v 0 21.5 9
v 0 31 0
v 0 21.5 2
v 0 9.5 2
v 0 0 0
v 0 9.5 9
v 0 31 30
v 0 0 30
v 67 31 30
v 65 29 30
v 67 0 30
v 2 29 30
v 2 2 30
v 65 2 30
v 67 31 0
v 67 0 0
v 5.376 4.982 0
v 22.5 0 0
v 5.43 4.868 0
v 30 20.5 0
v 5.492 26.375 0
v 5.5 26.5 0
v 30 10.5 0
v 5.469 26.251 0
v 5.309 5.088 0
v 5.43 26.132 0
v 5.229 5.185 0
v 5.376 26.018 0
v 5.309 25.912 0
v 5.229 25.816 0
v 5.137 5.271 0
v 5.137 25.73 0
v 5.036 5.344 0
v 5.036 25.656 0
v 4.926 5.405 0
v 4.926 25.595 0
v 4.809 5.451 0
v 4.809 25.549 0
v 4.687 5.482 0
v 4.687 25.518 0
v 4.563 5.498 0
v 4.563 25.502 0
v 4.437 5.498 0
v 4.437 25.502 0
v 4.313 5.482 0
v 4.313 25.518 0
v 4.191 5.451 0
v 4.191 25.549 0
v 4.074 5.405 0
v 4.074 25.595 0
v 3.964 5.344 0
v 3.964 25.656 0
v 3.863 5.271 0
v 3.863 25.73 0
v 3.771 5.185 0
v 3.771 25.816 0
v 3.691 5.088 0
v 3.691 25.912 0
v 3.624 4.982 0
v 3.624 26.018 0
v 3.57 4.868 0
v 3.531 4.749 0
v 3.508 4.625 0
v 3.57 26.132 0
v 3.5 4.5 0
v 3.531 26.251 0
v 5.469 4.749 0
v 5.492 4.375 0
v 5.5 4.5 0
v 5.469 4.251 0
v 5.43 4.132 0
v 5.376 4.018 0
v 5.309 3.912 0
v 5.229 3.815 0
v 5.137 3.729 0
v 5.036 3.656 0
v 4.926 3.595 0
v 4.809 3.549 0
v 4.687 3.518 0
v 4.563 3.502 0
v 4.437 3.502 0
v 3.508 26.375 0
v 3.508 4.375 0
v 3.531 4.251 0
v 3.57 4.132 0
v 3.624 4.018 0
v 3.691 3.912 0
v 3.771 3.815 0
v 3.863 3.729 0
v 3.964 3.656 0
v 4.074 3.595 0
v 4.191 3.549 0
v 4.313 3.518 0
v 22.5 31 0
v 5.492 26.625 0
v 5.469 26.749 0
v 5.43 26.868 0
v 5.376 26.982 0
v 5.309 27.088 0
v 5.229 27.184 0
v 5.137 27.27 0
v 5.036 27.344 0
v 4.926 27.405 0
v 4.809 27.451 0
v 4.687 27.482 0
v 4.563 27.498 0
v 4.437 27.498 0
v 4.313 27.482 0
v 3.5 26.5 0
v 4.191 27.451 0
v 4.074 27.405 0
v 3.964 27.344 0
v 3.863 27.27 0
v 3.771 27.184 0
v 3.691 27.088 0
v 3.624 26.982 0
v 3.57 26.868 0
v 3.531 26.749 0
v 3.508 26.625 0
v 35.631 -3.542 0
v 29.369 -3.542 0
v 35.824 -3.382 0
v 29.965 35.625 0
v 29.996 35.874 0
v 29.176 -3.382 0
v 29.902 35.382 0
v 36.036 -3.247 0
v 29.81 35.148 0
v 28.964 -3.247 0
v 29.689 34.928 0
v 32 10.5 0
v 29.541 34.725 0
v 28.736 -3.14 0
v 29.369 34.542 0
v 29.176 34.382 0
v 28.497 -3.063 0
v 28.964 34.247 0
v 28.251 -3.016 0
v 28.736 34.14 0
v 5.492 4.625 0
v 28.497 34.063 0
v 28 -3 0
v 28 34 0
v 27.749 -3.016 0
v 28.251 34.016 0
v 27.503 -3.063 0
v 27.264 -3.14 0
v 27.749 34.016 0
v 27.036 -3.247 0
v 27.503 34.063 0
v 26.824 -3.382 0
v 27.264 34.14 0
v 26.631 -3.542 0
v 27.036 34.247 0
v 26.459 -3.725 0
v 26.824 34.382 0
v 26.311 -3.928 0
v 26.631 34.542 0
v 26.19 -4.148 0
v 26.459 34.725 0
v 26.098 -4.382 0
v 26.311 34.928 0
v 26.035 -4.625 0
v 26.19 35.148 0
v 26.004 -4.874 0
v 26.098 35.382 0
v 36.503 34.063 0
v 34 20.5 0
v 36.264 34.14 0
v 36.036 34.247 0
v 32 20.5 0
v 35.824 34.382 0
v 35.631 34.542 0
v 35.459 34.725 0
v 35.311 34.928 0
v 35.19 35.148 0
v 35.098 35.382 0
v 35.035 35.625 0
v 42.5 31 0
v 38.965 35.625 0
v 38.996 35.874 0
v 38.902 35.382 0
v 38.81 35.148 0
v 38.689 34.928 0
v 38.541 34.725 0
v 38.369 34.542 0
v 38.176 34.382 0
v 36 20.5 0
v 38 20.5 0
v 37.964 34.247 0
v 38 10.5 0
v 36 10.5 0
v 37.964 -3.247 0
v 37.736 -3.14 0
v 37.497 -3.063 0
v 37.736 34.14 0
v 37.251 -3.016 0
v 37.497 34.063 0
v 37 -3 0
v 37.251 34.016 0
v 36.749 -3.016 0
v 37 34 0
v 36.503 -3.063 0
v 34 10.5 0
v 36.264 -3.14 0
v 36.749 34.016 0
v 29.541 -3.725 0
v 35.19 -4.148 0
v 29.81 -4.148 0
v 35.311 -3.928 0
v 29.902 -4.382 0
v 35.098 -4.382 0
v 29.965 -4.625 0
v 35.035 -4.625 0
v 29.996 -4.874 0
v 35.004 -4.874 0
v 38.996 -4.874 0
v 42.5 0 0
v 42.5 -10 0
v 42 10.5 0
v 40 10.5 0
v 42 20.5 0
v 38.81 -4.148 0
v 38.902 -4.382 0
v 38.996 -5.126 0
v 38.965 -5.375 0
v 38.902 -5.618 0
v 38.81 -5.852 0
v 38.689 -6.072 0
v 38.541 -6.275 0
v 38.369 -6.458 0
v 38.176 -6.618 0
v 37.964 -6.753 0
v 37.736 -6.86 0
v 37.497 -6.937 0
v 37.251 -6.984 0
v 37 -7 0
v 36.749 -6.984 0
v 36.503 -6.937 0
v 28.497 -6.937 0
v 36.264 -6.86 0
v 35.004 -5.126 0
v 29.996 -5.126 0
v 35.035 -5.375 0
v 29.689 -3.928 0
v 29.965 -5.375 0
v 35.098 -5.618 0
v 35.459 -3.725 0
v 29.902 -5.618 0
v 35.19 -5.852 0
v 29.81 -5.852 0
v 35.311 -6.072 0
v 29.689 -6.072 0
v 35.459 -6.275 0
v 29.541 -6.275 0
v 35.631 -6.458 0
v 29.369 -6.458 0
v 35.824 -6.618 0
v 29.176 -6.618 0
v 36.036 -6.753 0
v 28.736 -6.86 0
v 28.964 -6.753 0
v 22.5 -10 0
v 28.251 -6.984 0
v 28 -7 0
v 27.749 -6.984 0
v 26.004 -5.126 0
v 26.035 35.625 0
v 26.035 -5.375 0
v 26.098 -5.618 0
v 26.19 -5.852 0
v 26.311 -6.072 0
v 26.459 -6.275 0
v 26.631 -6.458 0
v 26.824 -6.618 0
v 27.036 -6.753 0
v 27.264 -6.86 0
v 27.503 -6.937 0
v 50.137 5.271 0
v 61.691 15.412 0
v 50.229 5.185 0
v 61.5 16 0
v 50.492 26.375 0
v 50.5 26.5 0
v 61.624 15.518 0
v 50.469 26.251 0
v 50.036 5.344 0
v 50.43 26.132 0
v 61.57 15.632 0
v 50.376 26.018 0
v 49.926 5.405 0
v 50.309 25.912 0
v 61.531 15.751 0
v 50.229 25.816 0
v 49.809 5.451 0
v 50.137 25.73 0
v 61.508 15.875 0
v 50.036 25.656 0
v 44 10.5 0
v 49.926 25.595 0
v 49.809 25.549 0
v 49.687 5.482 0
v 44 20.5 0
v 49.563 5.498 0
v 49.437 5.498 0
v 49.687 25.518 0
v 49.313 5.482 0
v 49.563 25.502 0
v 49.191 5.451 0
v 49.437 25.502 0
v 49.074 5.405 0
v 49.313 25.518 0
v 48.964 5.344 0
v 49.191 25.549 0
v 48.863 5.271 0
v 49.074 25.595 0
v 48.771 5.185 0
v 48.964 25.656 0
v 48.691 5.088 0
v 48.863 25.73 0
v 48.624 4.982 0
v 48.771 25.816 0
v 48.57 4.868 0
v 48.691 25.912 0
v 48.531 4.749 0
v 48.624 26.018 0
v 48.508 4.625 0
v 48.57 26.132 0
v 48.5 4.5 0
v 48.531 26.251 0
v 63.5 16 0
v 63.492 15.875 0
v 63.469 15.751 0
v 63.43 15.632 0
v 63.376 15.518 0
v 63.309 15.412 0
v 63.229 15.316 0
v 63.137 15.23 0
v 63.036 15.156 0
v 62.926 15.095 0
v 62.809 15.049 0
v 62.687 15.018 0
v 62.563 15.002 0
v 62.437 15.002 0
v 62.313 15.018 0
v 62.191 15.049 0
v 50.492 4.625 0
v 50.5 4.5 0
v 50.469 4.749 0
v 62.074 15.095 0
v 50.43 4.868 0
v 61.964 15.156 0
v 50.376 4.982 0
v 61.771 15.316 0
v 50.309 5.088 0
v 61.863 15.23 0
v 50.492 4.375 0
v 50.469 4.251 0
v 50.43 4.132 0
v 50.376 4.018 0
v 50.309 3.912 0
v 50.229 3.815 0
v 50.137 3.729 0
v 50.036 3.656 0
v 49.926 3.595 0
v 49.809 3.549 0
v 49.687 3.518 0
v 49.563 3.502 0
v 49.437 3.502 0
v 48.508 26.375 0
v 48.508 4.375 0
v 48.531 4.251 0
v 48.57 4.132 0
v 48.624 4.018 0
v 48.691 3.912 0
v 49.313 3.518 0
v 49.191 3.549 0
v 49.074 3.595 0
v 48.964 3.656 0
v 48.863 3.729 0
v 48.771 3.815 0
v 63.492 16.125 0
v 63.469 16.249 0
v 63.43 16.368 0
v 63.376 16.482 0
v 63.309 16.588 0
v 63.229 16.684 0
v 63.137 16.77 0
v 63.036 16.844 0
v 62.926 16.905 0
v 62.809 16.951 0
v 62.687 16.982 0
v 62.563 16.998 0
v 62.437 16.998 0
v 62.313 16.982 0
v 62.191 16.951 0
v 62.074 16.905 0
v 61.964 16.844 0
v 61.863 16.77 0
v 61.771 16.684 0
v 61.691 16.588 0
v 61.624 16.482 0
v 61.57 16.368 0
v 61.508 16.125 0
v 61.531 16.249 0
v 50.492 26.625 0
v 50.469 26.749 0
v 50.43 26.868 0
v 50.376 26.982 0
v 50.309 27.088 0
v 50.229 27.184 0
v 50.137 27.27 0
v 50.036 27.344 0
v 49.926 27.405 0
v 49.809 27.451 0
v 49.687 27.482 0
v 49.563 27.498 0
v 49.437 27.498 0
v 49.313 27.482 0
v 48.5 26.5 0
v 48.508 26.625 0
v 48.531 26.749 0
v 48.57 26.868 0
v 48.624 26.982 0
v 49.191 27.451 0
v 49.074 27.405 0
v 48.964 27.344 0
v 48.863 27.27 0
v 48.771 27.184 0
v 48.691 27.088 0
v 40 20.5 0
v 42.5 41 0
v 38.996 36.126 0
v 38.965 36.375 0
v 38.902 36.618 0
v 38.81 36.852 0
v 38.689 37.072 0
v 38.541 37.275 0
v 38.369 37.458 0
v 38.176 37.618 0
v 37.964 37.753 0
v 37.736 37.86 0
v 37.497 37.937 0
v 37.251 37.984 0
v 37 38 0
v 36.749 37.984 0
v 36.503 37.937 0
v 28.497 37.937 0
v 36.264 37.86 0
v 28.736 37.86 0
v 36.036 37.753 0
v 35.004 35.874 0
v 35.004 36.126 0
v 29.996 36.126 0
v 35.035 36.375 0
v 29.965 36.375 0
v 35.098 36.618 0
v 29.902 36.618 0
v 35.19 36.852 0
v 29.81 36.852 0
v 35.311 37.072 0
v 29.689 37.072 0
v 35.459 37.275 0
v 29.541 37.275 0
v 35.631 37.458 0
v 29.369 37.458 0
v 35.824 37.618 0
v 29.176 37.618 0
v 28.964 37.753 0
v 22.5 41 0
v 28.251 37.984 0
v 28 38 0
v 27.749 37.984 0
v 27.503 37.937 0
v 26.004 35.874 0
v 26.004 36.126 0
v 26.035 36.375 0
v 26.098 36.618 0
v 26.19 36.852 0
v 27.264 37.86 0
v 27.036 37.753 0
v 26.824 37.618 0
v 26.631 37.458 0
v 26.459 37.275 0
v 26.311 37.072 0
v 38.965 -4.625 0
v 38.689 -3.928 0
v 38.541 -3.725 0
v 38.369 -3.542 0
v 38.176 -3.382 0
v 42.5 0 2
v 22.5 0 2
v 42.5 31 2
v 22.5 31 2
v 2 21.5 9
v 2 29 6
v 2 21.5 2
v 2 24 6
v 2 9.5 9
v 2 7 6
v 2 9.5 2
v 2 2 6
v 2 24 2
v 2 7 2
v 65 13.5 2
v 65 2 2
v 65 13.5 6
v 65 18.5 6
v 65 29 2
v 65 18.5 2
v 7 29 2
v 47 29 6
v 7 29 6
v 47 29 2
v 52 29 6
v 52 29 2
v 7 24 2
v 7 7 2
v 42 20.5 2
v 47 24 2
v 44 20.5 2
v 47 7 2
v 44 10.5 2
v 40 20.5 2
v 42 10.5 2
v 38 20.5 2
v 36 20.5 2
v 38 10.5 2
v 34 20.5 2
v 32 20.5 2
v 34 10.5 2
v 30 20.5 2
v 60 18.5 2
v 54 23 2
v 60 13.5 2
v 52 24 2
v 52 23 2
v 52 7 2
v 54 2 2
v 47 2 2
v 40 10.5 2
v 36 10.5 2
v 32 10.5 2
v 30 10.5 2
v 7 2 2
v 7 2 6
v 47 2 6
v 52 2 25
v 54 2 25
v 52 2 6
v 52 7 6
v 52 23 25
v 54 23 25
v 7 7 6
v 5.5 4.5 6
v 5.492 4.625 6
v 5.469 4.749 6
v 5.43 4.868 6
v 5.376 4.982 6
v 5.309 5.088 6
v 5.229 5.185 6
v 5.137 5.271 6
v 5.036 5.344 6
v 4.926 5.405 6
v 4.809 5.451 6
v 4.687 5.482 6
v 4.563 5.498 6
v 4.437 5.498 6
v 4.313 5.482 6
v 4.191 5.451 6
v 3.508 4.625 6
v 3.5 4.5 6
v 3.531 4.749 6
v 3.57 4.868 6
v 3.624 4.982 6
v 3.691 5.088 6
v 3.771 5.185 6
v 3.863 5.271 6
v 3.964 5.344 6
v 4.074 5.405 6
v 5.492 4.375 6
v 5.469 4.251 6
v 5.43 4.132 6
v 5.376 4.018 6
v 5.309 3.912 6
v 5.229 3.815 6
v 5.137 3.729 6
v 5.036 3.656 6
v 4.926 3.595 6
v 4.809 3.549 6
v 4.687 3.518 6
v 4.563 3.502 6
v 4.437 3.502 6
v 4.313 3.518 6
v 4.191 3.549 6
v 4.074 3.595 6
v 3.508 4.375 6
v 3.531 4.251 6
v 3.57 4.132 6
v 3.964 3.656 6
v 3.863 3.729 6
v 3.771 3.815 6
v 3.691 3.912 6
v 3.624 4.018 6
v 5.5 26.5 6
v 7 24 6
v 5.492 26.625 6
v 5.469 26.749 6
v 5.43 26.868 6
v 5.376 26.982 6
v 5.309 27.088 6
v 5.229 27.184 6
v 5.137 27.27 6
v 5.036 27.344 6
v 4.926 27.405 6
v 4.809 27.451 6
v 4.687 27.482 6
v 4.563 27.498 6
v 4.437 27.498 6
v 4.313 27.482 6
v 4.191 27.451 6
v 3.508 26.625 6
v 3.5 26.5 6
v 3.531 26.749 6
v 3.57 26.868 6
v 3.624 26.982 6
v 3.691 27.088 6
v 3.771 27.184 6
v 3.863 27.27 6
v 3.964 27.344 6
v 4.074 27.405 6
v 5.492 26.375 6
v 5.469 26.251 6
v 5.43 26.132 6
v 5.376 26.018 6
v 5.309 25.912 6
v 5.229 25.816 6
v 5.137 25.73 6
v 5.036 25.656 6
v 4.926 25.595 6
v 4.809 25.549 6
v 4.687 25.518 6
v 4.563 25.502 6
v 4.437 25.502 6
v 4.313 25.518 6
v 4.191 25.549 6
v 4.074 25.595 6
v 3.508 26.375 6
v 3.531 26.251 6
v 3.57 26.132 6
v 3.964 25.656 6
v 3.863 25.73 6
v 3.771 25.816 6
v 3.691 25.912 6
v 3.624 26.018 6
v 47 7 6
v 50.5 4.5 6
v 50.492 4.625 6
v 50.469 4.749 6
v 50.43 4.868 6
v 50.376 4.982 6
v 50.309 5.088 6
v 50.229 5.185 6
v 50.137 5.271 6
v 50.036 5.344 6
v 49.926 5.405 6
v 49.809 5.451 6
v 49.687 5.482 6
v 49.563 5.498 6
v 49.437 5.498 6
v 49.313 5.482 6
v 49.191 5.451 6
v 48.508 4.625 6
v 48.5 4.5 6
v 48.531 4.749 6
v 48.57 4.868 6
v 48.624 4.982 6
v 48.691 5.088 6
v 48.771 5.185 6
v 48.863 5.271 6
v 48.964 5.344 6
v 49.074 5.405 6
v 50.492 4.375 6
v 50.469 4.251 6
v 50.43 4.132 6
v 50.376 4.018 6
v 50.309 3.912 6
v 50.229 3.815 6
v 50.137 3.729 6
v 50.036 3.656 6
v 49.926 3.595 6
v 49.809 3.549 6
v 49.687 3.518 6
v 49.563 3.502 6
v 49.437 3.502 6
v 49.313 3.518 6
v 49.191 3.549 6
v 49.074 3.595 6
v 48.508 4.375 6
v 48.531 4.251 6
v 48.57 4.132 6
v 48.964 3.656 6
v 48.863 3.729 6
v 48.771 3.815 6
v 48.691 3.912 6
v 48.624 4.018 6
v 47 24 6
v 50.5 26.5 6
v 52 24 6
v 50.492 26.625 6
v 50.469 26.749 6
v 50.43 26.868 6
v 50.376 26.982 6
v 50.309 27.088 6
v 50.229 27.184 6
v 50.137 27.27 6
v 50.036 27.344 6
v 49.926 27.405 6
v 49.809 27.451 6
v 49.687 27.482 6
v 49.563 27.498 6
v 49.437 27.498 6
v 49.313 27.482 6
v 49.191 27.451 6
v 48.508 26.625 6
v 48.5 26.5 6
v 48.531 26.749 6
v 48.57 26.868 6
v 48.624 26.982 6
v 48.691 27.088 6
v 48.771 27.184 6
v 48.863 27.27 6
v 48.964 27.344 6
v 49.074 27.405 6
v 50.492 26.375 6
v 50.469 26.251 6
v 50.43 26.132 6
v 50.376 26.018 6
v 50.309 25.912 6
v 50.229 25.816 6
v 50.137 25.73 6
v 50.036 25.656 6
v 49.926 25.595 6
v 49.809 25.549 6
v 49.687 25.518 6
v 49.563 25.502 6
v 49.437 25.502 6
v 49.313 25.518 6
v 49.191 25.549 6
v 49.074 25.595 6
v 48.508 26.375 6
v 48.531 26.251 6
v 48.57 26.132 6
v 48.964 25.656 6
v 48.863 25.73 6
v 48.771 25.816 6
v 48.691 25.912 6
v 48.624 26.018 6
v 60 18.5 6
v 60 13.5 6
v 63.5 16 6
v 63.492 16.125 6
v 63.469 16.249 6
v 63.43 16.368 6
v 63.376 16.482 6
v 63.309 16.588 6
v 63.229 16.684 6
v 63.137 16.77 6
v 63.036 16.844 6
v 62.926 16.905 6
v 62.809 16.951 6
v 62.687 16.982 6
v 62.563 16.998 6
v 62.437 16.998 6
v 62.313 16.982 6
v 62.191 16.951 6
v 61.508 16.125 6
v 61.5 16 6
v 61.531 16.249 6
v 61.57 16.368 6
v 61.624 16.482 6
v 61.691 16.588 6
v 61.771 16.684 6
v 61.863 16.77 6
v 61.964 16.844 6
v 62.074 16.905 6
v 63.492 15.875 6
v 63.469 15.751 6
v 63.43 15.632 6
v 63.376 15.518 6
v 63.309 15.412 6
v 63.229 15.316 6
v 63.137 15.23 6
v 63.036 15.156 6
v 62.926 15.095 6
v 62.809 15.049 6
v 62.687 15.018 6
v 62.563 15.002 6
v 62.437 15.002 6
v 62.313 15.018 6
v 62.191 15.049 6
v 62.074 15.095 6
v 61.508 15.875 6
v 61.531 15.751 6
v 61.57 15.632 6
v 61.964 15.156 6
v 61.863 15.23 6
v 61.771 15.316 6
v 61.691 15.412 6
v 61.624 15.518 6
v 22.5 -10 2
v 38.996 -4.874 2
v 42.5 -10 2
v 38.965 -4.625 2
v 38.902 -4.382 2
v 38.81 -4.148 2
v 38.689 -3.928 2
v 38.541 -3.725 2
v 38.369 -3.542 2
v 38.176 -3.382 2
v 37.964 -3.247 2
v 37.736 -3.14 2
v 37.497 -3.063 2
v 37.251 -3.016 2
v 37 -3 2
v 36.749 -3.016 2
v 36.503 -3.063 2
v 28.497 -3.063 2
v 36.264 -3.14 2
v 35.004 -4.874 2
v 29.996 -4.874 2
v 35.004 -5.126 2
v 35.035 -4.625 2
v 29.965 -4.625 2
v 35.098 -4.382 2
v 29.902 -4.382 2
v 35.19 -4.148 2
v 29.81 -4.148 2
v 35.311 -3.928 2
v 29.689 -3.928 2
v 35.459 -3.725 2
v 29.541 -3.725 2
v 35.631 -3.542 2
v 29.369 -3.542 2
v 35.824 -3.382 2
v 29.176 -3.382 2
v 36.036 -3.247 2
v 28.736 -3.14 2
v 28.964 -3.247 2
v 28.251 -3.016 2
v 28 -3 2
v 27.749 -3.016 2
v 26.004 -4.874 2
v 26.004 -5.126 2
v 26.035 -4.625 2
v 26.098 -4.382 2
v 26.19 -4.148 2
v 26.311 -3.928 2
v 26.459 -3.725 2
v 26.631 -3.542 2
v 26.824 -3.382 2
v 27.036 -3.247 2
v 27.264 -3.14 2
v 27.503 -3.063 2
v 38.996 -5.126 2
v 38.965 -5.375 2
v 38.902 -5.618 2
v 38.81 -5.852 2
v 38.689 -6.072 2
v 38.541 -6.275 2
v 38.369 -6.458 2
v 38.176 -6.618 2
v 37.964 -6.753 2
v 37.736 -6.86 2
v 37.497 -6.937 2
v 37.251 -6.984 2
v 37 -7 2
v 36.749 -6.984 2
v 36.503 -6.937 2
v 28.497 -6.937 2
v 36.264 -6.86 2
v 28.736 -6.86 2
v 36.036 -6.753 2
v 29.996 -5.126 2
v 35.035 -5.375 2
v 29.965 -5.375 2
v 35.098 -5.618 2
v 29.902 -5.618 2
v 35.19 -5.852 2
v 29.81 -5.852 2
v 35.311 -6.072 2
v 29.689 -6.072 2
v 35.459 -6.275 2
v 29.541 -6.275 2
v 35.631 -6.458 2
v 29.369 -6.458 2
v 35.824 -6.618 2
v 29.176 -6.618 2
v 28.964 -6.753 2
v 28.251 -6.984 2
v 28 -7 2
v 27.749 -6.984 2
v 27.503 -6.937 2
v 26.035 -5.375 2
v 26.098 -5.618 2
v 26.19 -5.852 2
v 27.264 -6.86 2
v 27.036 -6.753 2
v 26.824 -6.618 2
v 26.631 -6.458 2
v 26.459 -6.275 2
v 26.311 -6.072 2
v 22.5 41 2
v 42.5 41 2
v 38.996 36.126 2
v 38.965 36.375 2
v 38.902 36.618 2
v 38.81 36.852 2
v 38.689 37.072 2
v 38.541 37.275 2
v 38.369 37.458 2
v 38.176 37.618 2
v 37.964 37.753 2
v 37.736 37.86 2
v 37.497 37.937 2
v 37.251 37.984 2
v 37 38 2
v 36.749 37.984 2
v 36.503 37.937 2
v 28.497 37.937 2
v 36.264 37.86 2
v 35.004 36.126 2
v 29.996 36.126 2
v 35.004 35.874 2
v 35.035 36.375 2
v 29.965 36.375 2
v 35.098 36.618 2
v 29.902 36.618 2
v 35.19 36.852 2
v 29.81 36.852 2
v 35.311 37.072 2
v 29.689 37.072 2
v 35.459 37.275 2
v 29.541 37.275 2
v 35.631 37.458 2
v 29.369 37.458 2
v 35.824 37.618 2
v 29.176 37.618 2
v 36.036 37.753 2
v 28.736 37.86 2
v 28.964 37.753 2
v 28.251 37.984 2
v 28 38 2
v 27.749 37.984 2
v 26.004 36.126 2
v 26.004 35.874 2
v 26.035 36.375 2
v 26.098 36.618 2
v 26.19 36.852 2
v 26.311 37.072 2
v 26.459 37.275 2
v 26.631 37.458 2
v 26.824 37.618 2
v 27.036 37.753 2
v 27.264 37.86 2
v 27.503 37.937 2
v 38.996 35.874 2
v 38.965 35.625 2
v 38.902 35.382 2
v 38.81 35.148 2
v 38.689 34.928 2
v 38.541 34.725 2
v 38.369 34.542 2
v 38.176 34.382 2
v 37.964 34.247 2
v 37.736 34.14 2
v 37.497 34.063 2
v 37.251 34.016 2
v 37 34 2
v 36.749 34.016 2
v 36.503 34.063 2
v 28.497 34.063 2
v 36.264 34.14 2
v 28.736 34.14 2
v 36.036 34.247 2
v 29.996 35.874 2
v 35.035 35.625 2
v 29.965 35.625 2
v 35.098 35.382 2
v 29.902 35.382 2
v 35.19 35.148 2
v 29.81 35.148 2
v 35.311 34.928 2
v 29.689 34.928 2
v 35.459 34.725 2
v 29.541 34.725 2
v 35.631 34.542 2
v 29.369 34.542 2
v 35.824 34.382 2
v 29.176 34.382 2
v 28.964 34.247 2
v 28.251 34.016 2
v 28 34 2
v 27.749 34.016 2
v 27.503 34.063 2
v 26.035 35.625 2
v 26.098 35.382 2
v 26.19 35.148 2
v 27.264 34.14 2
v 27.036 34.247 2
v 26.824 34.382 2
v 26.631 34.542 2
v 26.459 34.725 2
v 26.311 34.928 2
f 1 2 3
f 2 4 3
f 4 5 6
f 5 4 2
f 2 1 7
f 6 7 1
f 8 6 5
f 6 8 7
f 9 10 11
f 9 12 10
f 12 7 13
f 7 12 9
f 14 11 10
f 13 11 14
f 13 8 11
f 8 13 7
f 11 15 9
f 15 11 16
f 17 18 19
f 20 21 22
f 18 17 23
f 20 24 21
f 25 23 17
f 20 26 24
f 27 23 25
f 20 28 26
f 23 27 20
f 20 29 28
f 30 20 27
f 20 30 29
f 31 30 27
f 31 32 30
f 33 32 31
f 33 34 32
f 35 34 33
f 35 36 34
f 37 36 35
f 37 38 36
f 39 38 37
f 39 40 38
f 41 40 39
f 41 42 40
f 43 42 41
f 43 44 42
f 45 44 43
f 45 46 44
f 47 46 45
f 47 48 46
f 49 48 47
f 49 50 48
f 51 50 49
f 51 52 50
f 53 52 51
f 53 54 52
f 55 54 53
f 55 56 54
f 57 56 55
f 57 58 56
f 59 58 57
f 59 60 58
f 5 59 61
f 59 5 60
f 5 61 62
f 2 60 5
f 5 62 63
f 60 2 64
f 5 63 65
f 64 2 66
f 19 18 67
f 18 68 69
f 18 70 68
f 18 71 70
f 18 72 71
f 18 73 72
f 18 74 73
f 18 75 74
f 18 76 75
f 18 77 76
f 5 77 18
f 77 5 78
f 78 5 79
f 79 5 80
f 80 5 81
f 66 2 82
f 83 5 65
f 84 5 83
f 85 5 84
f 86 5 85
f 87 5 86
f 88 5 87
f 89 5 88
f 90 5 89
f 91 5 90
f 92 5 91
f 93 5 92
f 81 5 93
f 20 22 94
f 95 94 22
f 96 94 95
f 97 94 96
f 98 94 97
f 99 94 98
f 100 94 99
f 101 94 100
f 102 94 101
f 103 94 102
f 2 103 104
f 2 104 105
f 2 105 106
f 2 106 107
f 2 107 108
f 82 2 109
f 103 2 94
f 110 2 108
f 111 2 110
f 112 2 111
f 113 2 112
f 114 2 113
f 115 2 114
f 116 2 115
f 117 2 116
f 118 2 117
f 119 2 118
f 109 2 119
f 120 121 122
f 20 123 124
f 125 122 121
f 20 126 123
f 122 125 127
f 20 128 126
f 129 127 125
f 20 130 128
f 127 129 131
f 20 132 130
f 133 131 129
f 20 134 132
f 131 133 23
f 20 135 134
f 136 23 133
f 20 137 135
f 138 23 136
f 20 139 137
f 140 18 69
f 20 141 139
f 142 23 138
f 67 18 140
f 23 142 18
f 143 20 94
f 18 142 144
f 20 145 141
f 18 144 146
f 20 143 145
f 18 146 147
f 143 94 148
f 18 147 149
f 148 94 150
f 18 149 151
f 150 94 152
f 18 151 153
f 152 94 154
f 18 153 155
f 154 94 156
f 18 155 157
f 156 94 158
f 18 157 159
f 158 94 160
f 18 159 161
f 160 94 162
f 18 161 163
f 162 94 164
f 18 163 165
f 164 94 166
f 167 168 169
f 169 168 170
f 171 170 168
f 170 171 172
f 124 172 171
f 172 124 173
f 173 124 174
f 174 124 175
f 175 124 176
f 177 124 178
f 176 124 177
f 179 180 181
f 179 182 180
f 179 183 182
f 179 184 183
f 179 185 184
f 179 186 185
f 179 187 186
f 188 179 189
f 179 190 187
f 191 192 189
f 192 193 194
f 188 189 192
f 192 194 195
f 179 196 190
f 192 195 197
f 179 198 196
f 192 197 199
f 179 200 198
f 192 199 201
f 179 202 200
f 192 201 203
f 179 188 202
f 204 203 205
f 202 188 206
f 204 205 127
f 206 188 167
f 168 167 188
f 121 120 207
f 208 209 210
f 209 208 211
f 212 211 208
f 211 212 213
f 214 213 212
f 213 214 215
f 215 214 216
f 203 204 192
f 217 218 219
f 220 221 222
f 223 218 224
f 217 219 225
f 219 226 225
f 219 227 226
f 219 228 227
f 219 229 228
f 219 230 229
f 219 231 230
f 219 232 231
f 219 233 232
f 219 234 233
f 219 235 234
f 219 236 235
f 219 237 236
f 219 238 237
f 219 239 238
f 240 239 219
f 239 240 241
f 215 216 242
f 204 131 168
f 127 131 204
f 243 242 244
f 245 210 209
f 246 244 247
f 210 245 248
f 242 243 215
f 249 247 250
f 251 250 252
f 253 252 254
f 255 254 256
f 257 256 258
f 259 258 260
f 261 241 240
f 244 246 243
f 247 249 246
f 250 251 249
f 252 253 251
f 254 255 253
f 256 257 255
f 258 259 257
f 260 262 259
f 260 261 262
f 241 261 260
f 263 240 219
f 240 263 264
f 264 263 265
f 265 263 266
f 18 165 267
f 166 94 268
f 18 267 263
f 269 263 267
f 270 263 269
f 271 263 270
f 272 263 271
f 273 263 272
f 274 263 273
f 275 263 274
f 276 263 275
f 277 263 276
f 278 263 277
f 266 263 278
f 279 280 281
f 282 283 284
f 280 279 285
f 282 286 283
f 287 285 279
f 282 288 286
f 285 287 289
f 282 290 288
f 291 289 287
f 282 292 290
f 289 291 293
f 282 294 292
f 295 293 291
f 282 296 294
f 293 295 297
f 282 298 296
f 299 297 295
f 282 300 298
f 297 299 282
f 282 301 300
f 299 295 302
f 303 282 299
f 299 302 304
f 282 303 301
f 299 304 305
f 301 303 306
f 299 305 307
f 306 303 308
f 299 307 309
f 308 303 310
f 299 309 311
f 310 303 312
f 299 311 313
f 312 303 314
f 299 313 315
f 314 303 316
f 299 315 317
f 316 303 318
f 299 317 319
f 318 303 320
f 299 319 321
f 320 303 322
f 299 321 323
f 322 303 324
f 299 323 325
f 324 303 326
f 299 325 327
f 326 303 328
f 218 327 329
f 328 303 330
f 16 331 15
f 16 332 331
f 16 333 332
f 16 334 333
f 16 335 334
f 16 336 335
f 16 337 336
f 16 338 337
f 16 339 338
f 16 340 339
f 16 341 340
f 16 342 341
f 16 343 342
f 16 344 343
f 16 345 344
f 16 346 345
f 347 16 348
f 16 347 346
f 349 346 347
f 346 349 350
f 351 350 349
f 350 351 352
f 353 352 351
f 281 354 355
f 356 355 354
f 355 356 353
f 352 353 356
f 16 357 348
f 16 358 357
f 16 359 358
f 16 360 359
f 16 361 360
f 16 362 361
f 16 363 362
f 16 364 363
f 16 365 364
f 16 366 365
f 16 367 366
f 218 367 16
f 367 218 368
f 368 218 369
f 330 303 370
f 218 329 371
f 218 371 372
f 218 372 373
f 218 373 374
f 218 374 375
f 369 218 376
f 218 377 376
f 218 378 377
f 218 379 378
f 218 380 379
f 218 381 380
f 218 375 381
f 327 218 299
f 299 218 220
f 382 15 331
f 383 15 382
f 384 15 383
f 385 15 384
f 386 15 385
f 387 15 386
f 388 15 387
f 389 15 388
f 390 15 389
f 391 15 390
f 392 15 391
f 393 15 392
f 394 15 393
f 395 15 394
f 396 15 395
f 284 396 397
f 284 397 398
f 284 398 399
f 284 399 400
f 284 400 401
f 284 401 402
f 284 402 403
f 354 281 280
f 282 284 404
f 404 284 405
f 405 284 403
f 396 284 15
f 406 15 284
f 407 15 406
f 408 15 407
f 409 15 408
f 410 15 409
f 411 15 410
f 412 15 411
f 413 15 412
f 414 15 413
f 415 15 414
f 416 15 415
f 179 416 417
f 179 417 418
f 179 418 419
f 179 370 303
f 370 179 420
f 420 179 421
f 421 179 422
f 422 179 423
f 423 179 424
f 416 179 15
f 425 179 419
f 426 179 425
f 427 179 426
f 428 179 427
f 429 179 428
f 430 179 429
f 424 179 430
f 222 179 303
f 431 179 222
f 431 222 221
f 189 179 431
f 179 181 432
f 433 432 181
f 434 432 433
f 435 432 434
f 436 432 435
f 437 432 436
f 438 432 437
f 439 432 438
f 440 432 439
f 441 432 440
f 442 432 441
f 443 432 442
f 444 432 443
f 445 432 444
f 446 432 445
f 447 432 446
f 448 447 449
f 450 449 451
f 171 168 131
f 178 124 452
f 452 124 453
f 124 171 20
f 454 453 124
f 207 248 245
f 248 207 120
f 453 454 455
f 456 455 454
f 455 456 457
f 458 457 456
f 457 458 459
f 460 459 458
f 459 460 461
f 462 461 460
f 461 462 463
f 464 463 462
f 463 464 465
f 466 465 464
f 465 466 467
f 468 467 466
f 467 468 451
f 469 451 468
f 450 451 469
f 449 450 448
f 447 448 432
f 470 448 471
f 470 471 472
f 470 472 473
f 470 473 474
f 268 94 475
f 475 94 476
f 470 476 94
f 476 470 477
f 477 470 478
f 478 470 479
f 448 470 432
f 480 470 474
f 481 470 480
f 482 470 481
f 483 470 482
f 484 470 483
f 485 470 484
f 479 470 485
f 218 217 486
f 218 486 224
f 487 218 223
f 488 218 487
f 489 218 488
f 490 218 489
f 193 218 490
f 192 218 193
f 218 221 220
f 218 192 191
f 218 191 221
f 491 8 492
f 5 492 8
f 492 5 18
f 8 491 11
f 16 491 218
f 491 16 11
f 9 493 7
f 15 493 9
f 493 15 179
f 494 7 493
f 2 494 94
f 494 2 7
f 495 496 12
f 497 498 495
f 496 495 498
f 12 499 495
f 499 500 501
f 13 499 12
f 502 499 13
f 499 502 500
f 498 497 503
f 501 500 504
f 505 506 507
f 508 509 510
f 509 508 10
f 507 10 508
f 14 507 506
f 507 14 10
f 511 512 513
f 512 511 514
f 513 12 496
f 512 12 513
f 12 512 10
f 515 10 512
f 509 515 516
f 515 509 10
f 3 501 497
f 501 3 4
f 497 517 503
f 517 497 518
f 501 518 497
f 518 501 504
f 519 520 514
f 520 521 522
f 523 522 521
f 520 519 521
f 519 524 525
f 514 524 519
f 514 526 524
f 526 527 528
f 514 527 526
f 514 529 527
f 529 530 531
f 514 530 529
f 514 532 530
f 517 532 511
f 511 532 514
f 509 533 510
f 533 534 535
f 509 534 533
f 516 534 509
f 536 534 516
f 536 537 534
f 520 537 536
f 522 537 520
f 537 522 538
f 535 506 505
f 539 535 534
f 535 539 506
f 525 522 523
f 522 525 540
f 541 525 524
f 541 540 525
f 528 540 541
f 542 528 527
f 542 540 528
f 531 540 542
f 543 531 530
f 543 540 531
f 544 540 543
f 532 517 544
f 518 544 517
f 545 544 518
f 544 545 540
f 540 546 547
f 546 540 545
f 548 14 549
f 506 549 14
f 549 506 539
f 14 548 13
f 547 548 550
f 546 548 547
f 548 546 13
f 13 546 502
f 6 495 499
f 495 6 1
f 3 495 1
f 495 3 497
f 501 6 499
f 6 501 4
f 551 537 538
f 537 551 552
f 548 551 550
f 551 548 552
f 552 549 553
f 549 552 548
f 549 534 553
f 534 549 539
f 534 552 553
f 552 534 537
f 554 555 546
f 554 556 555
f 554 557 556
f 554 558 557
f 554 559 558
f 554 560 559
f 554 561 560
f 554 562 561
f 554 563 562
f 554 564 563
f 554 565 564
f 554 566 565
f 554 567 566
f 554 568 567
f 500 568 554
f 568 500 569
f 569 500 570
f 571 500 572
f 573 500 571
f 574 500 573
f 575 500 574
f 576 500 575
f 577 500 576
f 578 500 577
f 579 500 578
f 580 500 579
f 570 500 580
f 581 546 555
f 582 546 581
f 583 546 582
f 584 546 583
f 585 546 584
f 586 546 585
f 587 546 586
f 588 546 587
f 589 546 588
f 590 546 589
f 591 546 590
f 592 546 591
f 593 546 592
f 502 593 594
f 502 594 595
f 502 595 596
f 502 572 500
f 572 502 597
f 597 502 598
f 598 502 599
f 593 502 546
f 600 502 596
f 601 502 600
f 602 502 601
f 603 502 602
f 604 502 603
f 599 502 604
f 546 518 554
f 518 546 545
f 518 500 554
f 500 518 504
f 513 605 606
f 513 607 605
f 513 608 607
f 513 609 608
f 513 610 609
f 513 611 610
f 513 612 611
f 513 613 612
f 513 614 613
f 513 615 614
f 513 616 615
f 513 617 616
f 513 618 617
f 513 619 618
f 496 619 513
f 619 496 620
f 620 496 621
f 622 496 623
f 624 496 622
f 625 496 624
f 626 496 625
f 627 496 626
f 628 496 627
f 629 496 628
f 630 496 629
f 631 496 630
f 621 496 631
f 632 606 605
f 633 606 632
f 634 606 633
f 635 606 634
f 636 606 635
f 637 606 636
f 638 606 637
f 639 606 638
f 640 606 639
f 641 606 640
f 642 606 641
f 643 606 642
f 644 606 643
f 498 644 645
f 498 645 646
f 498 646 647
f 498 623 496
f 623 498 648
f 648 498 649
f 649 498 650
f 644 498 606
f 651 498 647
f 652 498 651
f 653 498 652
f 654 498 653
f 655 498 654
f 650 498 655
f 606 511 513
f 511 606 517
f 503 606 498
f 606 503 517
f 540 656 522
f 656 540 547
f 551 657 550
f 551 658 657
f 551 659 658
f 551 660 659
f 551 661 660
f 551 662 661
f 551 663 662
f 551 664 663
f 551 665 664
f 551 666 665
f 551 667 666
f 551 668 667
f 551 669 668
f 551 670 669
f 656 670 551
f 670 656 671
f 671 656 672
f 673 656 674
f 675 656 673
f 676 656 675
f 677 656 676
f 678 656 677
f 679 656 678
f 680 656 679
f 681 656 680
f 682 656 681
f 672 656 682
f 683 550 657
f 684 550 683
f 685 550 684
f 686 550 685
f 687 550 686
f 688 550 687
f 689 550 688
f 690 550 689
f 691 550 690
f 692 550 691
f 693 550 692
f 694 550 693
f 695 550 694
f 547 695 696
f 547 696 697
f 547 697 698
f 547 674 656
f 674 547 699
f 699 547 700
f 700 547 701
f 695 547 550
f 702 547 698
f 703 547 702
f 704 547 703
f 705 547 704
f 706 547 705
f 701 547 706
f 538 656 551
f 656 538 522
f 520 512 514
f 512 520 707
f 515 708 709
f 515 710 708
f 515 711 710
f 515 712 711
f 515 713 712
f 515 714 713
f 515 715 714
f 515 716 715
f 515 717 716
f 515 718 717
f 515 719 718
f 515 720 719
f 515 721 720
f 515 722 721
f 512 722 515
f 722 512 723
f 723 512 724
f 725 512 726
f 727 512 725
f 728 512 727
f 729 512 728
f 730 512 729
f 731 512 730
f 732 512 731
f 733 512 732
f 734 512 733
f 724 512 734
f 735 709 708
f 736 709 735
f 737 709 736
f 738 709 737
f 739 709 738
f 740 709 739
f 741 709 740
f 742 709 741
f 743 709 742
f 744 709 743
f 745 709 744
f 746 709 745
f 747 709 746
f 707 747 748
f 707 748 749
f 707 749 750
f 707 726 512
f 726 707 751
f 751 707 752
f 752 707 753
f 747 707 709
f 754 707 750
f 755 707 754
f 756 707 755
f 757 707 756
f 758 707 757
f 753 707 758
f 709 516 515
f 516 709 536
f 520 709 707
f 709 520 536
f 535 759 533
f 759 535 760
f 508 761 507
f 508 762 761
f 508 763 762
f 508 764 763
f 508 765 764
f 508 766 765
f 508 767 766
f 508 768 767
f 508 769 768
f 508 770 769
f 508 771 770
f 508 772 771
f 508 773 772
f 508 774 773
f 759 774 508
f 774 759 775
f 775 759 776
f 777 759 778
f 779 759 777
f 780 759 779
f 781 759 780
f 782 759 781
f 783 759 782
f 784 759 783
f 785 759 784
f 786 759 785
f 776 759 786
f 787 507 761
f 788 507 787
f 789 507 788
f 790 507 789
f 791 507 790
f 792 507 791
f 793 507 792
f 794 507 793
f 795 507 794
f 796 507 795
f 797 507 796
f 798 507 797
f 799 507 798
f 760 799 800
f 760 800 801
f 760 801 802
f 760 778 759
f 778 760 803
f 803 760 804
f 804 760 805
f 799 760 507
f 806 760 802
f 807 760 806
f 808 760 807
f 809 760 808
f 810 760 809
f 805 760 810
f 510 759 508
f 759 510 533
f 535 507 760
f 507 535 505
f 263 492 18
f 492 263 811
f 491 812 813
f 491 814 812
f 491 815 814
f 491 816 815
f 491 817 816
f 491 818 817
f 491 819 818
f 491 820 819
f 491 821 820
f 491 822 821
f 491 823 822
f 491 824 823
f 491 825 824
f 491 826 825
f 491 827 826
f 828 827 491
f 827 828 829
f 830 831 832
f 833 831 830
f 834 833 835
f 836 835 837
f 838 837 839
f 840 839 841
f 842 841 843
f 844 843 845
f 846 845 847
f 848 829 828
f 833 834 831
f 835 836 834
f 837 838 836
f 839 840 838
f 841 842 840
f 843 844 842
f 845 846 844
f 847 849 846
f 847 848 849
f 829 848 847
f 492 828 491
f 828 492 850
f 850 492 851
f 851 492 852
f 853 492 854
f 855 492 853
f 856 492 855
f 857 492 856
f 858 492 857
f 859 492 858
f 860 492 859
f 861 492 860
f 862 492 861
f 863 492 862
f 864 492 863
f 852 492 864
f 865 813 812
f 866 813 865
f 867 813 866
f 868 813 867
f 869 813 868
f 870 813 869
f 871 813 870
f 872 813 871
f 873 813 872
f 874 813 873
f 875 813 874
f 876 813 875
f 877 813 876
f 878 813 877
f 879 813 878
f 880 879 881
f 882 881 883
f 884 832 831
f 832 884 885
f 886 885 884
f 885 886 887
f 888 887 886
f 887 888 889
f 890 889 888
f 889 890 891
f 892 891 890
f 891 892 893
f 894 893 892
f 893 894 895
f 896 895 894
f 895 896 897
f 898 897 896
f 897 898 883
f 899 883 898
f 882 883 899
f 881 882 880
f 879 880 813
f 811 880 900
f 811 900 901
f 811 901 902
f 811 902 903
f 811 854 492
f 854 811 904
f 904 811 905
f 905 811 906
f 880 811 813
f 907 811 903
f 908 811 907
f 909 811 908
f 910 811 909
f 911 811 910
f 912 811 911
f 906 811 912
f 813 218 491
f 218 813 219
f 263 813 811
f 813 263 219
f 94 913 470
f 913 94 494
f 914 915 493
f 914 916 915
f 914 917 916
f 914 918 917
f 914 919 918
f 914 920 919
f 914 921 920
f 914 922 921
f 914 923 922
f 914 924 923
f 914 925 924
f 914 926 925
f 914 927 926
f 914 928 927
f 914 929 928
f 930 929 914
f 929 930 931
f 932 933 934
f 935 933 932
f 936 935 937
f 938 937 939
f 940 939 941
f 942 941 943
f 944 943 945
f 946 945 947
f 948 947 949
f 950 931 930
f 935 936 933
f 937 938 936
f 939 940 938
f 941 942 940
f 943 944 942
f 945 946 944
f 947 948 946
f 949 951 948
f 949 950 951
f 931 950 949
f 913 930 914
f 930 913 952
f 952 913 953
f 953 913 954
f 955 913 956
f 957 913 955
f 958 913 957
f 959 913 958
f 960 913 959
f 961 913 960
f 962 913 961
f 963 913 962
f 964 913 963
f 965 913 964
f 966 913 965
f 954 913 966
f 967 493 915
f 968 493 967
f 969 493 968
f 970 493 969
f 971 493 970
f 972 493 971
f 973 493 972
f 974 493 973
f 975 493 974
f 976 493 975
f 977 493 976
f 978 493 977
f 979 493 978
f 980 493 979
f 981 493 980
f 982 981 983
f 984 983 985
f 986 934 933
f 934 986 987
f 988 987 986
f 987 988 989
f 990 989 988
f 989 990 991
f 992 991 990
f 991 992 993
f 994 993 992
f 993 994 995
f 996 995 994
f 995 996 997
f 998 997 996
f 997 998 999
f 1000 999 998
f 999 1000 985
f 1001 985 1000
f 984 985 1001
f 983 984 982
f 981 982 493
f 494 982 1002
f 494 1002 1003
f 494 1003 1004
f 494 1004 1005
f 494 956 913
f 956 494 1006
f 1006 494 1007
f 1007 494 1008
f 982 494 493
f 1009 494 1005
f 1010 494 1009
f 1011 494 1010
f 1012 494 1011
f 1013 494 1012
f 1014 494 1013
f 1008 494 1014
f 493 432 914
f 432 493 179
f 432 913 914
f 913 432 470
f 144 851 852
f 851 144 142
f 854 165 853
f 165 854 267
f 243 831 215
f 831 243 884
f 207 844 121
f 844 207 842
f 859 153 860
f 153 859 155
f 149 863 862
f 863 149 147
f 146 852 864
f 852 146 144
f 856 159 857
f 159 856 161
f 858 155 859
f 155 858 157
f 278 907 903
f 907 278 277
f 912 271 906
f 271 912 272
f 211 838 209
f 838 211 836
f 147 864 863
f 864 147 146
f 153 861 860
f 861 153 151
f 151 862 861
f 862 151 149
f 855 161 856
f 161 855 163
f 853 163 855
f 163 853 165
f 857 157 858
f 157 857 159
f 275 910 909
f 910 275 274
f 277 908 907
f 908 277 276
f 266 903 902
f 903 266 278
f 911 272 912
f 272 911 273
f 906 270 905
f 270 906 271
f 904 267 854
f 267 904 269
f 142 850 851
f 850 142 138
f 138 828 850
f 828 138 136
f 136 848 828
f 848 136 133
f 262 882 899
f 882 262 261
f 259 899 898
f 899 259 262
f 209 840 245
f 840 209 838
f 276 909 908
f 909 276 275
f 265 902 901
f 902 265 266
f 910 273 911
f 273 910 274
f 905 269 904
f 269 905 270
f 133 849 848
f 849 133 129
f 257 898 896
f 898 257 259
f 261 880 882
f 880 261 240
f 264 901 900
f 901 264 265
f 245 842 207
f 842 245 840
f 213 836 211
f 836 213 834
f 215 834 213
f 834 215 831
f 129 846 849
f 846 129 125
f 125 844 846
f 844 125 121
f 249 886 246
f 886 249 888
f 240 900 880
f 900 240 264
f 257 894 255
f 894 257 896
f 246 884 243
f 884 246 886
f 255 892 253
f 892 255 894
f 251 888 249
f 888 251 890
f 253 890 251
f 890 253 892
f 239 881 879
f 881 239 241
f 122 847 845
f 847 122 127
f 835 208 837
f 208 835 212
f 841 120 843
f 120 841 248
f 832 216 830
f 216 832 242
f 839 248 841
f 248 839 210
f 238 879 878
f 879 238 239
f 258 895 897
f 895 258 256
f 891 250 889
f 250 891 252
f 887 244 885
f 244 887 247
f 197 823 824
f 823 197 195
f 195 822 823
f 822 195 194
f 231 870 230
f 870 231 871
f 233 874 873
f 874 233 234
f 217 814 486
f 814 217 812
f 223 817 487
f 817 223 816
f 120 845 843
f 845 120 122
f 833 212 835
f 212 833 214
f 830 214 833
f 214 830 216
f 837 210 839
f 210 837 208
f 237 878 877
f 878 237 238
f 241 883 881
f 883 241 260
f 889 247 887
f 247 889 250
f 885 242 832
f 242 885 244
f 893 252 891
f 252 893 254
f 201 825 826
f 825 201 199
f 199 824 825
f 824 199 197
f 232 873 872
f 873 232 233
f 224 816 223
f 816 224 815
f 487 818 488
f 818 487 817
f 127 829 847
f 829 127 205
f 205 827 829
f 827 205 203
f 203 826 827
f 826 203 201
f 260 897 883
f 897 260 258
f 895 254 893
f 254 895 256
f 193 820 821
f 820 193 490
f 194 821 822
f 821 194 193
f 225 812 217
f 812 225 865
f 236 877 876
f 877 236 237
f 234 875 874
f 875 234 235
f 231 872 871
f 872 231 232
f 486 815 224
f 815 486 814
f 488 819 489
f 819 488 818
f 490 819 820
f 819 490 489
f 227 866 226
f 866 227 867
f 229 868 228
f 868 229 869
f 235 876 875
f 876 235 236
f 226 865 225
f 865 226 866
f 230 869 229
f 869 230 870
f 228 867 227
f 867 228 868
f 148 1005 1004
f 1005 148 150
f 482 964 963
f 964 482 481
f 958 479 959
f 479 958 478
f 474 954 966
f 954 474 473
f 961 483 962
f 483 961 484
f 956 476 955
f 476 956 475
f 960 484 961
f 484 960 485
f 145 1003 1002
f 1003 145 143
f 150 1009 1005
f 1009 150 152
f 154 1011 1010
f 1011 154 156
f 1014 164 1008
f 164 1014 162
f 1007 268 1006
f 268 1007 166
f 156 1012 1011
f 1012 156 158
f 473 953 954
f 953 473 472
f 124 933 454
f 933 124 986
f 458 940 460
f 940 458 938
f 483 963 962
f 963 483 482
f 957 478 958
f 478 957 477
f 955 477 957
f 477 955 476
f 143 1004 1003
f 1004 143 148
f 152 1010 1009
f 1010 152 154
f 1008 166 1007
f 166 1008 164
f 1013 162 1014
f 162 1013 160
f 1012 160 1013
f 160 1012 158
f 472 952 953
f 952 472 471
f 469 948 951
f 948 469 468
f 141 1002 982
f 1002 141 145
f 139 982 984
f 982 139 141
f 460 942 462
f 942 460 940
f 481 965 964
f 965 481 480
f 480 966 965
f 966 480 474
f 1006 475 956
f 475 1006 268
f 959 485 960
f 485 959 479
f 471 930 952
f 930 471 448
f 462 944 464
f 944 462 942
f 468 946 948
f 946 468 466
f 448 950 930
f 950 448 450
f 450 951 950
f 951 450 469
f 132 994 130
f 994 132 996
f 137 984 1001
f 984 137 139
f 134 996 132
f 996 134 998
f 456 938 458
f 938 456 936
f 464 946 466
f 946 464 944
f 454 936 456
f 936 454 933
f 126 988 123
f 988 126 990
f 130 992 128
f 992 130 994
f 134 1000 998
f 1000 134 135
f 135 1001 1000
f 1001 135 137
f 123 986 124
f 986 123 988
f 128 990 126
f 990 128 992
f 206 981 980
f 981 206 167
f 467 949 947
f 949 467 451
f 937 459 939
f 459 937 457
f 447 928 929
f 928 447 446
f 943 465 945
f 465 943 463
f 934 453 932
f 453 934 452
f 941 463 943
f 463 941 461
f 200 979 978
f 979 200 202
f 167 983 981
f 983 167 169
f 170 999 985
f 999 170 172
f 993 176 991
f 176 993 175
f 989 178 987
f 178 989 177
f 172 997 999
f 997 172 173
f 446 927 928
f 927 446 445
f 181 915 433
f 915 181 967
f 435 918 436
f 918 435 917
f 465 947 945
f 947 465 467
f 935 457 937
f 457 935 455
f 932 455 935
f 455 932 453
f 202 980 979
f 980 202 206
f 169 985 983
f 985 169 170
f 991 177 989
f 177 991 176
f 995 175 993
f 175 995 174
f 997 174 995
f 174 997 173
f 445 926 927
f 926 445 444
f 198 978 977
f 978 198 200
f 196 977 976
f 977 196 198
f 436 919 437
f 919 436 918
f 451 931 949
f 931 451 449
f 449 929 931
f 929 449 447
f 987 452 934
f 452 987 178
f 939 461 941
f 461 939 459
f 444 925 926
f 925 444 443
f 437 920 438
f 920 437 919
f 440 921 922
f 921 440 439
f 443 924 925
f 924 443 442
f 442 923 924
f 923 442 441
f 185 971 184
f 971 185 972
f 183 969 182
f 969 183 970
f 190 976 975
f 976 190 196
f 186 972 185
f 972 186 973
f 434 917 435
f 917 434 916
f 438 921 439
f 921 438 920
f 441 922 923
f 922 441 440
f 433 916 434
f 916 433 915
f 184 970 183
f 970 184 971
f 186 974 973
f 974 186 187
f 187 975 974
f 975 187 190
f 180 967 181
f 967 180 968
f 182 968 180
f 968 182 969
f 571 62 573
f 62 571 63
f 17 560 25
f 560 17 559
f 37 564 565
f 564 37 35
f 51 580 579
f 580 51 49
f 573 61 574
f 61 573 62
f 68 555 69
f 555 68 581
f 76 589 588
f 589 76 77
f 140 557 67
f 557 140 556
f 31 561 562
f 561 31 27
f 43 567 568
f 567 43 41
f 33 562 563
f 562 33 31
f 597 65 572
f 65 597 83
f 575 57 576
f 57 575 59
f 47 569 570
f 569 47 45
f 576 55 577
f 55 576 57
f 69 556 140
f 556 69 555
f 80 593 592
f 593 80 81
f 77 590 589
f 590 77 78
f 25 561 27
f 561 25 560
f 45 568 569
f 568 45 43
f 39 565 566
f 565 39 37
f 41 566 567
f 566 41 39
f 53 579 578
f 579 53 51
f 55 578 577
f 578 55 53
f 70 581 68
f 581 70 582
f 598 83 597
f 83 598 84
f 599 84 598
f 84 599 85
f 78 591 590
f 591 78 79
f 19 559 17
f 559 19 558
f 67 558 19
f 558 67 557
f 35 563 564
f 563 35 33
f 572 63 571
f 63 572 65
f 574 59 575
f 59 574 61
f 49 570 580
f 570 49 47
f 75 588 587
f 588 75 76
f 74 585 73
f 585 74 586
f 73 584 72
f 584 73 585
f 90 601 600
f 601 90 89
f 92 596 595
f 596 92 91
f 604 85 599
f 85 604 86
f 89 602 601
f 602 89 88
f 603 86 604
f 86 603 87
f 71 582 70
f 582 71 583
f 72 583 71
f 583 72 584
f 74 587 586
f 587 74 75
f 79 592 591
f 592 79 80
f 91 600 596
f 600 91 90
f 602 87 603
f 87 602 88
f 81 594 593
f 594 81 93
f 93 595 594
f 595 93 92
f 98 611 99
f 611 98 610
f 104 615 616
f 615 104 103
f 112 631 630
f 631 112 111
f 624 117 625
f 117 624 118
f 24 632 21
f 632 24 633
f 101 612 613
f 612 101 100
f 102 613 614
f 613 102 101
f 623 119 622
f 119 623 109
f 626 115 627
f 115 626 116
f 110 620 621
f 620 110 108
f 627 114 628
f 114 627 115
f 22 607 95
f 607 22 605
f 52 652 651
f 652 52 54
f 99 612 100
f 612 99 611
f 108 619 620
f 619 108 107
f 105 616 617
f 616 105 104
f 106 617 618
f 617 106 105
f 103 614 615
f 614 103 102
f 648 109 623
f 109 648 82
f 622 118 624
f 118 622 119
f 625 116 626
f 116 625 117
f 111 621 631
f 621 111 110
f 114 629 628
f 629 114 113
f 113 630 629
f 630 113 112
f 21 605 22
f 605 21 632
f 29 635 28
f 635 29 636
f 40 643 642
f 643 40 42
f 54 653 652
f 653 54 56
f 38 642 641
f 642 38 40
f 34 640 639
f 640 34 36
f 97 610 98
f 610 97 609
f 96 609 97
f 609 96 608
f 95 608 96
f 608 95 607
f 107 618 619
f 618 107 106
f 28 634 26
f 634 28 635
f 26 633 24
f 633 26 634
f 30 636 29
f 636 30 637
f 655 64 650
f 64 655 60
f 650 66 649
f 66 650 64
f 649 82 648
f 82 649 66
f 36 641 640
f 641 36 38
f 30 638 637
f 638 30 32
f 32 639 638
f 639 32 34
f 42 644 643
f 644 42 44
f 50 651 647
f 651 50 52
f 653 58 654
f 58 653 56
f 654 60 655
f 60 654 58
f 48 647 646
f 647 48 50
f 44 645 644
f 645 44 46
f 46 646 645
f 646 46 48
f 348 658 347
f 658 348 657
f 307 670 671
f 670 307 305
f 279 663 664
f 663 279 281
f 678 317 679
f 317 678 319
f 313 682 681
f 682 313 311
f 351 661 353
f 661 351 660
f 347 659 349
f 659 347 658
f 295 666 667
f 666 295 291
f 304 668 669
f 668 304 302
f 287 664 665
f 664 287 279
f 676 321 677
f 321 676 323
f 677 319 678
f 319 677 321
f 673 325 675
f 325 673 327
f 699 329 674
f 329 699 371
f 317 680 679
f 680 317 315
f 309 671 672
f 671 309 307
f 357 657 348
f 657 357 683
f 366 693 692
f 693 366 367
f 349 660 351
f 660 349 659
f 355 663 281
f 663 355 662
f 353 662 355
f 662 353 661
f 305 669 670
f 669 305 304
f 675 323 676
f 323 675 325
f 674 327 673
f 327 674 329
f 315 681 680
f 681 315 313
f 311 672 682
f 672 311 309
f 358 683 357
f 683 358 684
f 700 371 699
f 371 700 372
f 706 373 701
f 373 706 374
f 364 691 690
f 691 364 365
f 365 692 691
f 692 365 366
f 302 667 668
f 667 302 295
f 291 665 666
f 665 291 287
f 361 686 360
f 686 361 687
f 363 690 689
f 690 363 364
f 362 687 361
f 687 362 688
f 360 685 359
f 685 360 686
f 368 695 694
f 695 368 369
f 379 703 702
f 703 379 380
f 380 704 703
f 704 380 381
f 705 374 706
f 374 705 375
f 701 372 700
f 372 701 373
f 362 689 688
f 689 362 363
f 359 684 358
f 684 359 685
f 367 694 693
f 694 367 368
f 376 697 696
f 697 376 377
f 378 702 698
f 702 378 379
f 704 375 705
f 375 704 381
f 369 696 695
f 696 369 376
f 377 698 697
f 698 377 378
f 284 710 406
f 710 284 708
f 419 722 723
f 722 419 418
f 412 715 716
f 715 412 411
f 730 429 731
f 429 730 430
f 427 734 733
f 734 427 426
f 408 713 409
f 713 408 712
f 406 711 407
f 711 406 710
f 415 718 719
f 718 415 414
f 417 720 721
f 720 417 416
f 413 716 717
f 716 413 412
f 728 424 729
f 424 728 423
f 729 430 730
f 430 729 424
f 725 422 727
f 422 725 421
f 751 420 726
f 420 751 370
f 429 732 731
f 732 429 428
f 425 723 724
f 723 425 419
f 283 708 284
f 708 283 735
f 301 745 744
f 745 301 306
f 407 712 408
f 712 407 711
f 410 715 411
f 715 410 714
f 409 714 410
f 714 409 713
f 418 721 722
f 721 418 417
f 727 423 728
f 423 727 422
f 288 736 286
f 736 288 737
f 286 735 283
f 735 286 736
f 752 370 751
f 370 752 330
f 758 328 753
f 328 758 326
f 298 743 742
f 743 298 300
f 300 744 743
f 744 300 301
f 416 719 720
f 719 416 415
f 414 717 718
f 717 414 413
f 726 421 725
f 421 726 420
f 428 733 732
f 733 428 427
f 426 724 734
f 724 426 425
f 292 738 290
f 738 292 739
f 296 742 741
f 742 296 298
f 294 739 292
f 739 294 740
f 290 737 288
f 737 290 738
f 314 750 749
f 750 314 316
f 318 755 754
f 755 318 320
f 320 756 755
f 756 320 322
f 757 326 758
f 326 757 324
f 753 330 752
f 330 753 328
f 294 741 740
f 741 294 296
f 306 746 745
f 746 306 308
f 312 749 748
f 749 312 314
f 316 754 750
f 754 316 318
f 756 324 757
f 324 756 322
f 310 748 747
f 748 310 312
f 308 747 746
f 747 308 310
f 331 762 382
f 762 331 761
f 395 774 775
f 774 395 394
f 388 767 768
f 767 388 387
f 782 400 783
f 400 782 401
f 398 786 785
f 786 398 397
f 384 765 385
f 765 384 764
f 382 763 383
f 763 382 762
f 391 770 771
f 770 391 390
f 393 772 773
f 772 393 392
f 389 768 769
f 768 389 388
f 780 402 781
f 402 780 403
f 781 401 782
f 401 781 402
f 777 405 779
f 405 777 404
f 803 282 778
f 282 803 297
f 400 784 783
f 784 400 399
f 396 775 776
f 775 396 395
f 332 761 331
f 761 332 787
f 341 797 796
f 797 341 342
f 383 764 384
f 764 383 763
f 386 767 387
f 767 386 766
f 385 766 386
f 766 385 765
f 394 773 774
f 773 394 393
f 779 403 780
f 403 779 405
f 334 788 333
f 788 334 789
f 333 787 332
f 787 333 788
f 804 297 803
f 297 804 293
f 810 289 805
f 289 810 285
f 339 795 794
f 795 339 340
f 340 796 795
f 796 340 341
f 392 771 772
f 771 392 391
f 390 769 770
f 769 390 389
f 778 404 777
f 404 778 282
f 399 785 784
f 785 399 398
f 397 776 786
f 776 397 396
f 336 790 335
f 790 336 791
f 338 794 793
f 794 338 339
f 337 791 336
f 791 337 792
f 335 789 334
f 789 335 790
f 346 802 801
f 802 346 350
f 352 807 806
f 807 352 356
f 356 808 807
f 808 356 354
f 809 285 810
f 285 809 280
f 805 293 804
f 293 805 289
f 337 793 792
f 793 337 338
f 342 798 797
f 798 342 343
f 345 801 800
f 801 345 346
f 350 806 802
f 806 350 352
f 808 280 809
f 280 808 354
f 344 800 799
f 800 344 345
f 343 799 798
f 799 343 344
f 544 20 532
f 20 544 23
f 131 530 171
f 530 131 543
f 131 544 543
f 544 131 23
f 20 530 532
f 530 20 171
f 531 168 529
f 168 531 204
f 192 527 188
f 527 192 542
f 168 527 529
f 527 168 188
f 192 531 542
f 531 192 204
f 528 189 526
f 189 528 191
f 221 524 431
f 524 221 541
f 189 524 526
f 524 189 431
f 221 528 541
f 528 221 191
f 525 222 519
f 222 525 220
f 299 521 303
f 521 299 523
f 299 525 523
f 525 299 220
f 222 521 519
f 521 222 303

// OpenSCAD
$fn=50;

// ESP8266   49mm x 26mm x 14mm

difference() {
	union() {
		difference(){
			//Korpus
			cube([67,31,30]);
			translate([2,2,2]) cube([63,27,28]);
			translate([0,9.5,2]) cube([2,12,7]);
		}

		//Trenner ESP / BME
		translate([52,0,0]) cube([2,23,25]);

		//Platinen Abstandhalter
		translate([2,2,2]) cube([5,5,4]);
		translate([2,24,2]) cube([5,5,4]);
		translate([47,2,2]) cube([5,5,4]);
		translate([47,24,2]) cube([5,5,4]);
		translate([60,13.5,2]) cube([5,5,4]);
	}

	//Schraubenlöcher
	translate([4.5,4.5,0]) cylinder(6,2/2,2/2);
	translate([4.5,26.5,0]) cylinder(6,2/2,2/2);
	translate([49.5,4.5,0]) cylinder(6,2/2,2/2);
	translate([49.5,26.5,0]) cylinder(6,2/2,2/2);
	translate([62.5,16,0]) cylinder(6,2/2,2/2);

	//Lüftung ESP8266
	translate([30,10.5,0]) cube([2,10,2]);
	translate([34,10.5,0]) cube([2,10,2]);
	translate([38,10.5,0]) cube([2,10,2]);
	translate([42,10.5,0]) cube([2,10,2]);
}

//Halterung
difference() {
	union() {
		translate([22.5,-10,0]) cube([20,10,2]);
		translate([22.5,31,0]) cube([20,10,2]);
	}
	translate([28,-5,0]) rotate(90,v=[0,0,1]) cylinder(2,4/2,4/2);
	translate([37,-5,0]) rotate(90,v=[0,0,1]) cylinder(2,4/2,4/2);
	translate([28,36,0]) rotate(90,v=[0,0,1]) cylinder(2,4/2,4/2);
	translate([37,36,0]) rotate(90,v=[0,0,1]) cylinder(2,4/2,4/2);
}
